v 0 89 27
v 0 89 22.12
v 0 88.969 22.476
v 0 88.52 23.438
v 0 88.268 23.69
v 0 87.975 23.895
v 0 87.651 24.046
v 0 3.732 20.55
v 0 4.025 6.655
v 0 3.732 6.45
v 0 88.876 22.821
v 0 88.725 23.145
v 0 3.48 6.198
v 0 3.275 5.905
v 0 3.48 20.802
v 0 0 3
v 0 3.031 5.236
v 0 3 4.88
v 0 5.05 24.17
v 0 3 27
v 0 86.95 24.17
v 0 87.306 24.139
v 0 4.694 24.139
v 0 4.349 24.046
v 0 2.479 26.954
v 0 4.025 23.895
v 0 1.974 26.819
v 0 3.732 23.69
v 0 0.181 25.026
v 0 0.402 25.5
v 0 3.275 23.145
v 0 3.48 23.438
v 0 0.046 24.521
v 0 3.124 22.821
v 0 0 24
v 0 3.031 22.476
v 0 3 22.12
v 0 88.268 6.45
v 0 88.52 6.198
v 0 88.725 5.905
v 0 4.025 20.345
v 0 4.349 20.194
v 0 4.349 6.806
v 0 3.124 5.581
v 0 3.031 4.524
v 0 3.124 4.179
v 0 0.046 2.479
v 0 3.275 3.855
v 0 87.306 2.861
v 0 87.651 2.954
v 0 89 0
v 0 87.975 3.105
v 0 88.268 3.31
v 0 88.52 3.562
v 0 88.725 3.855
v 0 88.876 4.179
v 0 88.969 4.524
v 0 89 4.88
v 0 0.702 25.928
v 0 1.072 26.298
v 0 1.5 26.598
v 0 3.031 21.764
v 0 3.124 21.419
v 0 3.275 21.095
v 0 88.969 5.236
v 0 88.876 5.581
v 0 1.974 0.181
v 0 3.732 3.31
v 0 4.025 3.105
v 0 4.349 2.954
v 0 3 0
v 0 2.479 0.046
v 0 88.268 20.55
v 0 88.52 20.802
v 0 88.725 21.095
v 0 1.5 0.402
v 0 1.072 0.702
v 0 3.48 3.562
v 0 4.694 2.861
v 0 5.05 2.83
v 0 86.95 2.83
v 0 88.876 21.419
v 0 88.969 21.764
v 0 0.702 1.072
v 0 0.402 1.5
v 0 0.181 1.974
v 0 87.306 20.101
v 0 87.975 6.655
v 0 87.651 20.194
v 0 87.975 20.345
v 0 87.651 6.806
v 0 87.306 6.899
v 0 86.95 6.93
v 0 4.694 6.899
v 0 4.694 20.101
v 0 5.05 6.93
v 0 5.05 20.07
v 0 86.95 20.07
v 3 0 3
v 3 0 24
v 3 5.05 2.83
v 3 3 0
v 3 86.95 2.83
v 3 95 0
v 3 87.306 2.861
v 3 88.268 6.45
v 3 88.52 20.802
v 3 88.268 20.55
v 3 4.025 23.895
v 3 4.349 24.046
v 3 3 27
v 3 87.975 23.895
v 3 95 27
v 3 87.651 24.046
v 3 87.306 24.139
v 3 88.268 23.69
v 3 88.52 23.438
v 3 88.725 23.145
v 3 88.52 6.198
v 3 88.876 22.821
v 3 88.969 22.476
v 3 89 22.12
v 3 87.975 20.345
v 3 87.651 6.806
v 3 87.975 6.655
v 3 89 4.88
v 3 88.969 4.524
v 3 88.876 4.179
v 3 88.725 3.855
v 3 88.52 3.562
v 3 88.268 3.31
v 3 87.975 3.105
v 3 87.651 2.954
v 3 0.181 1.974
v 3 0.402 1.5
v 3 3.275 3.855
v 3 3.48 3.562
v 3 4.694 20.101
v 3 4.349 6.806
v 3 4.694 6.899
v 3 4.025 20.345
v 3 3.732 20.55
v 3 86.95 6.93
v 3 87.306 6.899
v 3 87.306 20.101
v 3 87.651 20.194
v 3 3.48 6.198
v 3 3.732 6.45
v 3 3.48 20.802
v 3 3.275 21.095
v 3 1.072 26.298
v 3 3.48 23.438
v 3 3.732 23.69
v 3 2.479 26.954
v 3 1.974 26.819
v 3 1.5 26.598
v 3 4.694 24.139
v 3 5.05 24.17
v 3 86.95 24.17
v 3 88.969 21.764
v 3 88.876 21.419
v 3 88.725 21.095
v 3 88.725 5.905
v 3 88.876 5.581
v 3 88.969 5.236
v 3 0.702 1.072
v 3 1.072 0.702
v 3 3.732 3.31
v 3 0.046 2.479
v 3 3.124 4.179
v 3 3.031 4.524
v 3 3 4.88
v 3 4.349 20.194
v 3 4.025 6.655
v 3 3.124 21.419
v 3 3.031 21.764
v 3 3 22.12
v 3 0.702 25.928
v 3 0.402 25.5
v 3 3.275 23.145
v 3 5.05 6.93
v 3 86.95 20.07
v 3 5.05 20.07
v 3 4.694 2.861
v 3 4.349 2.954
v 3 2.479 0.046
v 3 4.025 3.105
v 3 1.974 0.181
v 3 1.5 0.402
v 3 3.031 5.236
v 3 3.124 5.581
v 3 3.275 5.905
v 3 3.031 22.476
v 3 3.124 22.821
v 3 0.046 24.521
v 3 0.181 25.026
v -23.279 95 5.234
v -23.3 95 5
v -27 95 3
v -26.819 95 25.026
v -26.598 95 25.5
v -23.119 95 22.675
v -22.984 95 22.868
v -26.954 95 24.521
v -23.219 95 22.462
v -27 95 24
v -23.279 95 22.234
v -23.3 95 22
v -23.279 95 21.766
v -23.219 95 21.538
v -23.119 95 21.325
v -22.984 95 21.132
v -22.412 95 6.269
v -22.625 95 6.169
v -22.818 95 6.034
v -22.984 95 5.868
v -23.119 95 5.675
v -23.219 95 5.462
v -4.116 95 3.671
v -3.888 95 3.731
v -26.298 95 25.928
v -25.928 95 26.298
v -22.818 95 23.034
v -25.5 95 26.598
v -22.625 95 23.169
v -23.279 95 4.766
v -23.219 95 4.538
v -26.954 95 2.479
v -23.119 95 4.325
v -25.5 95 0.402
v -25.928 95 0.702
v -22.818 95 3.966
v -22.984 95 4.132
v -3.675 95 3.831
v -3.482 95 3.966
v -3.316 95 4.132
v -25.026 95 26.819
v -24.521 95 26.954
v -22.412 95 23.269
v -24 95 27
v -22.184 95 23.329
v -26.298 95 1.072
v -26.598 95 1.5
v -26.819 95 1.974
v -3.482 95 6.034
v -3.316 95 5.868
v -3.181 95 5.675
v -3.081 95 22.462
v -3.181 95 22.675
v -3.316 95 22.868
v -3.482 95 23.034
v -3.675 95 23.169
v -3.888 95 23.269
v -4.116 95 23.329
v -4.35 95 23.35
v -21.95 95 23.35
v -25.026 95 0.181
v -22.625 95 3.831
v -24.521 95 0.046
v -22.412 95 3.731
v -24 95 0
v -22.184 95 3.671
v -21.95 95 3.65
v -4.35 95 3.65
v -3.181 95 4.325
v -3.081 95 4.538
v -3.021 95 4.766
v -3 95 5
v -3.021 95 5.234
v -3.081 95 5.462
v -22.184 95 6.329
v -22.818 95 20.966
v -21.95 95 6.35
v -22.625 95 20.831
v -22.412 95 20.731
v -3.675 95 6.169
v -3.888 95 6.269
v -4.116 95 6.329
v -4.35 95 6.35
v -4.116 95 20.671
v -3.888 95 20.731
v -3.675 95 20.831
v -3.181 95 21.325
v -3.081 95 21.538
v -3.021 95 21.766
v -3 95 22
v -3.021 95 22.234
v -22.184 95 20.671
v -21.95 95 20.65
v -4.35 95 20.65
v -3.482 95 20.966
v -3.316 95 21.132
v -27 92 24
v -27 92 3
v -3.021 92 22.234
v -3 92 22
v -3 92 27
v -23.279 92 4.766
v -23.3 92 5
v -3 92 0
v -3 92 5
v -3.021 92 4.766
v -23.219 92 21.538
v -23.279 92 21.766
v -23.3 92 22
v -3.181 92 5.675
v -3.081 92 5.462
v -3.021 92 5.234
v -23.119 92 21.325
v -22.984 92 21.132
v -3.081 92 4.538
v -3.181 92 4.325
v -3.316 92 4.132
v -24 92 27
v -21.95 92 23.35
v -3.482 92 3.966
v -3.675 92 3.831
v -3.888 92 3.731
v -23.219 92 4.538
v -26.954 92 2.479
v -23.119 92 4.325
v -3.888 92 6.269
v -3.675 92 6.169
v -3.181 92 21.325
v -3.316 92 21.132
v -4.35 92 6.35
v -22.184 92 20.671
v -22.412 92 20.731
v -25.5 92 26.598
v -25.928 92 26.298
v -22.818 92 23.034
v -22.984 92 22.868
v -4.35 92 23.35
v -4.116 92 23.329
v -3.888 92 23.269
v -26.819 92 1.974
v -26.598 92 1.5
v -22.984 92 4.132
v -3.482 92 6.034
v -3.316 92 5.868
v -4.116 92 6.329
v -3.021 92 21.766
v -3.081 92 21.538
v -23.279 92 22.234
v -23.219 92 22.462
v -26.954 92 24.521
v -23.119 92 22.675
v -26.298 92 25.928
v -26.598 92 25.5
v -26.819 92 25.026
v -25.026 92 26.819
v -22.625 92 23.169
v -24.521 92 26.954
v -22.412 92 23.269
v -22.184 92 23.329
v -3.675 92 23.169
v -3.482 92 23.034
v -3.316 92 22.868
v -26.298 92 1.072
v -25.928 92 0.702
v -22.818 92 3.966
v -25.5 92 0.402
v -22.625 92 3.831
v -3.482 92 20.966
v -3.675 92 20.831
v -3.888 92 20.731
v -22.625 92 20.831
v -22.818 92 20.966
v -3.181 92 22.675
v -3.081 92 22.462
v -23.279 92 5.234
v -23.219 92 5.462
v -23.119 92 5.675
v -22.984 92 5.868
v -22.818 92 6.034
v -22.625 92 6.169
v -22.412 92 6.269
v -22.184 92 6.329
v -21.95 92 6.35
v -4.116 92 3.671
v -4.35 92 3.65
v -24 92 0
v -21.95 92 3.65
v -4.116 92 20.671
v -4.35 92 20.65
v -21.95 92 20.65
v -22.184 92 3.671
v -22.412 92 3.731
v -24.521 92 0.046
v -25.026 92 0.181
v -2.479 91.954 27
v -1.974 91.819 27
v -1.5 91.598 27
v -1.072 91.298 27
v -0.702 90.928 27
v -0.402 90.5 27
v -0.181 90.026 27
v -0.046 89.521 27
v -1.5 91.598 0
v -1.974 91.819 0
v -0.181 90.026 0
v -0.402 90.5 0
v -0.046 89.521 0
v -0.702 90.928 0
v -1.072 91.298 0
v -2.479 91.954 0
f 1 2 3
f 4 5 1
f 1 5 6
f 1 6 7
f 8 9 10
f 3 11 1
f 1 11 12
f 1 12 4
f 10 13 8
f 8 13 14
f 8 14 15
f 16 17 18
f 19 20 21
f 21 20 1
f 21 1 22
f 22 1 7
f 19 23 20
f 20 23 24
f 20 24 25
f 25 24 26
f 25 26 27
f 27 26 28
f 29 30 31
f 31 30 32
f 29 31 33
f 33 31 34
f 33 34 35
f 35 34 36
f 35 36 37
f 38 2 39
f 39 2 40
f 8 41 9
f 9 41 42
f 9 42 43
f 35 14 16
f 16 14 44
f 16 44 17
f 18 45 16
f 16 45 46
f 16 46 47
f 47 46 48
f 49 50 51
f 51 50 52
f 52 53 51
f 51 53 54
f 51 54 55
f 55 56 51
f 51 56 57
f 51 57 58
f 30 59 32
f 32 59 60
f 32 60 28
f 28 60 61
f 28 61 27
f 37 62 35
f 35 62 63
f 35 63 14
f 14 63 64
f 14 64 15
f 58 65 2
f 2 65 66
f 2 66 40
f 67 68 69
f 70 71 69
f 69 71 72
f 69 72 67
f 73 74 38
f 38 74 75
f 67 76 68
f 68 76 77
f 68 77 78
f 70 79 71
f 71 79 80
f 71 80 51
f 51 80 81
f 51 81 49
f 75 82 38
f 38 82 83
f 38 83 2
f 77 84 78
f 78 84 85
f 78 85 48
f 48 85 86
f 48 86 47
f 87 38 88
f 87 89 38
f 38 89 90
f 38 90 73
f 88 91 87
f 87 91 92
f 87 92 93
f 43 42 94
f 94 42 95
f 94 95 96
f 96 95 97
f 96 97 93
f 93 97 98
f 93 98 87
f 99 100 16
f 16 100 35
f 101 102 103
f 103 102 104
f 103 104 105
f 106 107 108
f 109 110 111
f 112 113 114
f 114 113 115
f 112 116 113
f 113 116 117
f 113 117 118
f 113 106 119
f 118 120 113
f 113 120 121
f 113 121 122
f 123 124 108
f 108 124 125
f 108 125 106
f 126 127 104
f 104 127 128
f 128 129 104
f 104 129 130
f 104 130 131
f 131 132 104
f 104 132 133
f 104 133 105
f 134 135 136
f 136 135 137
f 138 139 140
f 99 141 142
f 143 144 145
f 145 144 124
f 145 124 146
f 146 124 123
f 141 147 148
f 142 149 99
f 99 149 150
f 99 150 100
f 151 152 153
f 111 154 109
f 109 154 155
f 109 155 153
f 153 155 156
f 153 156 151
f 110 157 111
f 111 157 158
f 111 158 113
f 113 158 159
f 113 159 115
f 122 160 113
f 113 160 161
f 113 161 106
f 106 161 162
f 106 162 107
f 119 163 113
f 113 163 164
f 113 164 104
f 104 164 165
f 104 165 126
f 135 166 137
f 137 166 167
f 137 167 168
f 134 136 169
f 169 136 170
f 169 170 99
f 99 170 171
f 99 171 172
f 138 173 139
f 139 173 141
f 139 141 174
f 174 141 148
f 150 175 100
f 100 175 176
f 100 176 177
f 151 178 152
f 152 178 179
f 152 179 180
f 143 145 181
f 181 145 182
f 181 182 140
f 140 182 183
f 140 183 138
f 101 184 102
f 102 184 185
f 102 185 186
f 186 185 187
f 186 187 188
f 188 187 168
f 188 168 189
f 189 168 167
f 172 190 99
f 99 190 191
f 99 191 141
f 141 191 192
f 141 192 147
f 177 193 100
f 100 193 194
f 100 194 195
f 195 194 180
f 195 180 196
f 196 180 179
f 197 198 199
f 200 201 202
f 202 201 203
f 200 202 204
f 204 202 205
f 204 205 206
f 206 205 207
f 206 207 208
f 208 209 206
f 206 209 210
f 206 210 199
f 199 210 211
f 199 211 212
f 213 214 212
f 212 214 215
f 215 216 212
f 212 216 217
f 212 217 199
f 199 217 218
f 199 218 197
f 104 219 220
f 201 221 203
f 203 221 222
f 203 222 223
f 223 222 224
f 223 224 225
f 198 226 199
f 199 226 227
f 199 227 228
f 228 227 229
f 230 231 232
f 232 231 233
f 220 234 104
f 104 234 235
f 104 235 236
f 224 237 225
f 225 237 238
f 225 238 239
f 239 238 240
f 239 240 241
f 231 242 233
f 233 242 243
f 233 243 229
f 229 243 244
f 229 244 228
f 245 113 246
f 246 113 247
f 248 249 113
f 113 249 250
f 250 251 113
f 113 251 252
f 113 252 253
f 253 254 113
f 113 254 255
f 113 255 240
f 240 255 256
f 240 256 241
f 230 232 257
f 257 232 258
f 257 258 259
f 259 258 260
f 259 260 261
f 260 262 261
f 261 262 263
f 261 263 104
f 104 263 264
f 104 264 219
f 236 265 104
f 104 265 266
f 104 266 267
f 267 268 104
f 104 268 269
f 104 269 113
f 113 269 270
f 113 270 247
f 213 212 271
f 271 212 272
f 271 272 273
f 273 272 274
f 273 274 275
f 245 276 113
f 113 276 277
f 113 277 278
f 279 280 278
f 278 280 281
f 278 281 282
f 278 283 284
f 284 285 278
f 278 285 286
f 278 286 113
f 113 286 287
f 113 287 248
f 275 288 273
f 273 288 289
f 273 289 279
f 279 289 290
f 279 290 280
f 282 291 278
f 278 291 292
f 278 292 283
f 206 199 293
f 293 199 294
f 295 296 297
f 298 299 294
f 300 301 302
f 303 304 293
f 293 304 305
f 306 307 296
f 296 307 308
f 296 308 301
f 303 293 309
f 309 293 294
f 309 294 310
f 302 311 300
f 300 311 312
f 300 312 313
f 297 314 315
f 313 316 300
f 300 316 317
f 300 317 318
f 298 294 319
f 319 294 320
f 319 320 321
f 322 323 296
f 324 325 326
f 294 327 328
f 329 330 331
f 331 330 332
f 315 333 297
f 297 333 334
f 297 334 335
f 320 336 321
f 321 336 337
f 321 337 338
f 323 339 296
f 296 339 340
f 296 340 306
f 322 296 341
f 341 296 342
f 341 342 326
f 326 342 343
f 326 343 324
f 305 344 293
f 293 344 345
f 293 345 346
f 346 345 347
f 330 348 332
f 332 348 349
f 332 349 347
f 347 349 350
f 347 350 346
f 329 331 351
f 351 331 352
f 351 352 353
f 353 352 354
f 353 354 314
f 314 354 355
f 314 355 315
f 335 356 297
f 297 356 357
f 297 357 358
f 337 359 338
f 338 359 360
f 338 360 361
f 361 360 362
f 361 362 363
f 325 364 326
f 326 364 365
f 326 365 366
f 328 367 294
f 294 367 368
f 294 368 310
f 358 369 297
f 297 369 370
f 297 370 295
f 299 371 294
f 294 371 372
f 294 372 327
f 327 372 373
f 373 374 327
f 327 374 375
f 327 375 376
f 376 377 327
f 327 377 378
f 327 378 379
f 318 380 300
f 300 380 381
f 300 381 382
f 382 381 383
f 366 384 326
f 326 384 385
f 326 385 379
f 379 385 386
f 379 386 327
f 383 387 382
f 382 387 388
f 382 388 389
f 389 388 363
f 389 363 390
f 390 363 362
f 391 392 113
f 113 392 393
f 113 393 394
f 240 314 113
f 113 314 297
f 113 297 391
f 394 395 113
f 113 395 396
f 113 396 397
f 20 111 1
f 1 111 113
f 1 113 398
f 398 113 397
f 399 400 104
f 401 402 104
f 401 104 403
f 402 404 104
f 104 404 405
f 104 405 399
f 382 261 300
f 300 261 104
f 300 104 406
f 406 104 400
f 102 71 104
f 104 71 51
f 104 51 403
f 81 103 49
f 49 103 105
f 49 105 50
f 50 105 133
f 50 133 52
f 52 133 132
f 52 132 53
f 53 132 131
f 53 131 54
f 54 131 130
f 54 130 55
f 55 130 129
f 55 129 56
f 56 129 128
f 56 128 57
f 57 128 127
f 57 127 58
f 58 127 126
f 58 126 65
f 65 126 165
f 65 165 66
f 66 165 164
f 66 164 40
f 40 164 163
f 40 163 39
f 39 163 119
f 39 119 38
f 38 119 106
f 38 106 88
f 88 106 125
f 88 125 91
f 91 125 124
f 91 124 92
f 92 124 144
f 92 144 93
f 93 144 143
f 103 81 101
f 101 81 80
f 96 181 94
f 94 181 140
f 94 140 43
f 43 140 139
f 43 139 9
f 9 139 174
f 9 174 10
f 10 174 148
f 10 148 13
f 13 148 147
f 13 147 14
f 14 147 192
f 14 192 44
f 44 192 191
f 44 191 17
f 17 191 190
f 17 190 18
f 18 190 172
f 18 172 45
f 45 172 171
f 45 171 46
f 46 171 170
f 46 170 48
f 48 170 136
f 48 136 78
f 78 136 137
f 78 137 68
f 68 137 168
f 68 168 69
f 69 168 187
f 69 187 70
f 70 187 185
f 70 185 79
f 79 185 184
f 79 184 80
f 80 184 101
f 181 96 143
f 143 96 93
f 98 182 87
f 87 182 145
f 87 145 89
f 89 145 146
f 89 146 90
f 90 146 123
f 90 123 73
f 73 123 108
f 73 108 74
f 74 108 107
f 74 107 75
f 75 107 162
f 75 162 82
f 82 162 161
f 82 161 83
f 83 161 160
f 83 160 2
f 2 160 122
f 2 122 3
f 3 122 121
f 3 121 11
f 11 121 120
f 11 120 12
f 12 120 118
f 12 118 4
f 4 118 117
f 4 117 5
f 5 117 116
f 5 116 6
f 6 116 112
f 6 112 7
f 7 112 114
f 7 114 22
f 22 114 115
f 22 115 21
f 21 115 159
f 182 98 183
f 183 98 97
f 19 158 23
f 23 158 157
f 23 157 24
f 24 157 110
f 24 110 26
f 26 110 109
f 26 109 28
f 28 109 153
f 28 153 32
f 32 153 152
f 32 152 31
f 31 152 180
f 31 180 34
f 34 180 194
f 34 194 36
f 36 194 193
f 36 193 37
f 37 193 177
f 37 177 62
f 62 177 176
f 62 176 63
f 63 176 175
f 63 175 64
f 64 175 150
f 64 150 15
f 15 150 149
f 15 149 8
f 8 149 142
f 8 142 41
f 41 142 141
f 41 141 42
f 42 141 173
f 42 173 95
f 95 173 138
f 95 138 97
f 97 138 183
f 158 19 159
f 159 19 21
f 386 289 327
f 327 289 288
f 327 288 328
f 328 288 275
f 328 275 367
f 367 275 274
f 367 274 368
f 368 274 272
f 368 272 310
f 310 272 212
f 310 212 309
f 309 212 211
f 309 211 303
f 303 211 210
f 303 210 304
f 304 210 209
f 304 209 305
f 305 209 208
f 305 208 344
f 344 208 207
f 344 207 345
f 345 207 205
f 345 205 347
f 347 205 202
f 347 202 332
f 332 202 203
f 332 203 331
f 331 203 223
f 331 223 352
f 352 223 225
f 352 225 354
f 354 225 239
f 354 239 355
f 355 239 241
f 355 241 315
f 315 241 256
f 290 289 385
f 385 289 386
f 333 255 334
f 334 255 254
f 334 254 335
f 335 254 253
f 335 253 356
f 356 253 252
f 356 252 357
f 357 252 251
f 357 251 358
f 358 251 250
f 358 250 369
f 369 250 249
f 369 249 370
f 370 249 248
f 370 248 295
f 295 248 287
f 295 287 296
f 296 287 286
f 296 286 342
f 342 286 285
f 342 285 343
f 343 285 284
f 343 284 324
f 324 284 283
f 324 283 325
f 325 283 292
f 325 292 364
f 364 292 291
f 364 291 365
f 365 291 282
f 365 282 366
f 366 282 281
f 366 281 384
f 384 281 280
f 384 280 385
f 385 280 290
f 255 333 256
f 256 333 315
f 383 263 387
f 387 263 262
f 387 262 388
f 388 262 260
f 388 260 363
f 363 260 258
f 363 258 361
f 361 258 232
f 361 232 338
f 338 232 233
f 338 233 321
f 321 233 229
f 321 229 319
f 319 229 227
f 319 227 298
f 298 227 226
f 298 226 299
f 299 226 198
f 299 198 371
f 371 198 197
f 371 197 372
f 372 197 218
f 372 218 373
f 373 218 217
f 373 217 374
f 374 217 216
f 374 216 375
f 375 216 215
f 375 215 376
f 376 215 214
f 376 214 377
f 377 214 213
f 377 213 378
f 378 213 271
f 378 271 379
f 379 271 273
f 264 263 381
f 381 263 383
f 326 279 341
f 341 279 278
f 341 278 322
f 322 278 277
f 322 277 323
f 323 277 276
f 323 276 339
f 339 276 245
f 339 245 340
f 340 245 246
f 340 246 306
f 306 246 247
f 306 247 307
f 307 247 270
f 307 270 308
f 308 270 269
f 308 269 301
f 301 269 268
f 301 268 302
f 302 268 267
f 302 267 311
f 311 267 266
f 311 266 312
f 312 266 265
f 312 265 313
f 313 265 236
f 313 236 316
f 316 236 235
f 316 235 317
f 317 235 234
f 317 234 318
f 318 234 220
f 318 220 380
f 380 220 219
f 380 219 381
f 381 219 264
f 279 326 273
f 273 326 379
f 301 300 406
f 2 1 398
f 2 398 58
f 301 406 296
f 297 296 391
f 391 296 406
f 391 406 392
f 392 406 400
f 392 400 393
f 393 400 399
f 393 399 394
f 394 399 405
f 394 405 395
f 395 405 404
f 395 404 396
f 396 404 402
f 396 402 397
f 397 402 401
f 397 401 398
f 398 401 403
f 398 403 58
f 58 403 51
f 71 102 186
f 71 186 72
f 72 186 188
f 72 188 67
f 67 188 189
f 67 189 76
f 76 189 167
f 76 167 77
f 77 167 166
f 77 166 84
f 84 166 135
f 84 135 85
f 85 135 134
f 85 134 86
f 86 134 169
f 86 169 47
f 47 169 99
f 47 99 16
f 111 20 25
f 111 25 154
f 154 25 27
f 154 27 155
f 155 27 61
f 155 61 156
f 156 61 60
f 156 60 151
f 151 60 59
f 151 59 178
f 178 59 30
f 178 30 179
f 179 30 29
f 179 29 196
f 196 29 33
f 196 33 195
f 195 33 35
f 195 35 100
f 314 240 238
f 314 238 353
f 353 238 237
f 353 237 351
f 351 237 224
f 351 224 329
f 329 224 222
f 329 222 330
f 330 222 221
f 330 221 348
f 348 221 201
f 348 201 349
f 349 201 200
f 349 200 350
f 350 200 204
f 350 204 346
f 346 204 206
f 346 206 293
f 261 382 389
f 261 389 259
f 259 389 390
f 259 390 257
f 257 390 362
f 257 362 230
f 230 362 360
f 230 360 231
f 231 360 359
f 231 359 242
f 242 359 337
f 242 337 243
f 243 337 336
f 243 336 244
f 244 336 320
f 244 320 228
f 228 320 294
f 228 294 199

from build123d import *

# Parameters (mm, degrees)
BOSS_EXTRUDE1_DEPTH = 27
CUT_EXTRUDE1_DEPTH  = 104.218215447
CUT_EXTRUDE2_DEPTH  = 103.386522551
FILLET1_R           = 3
FILLET2_R           = 3


with BuildPart() as part:
    # Sketch1 → Boss-Extrude1 (new body)
    with BuildSketch(Plane.XY):
        Polygon((0, 0), (3, 0), (3, 95), (-27, 95), (-27, 92), (0, 92), align=None)
    extrude(amount=BOSS_EXTRUDE1_DEPTH)

    # Sketch6 → Cut-Extrude1 (cut, through all)
    with BuildSketch(Plane(origin=(3, 0, 0), x_dir=(0, 0, -1), z_dir=(1, 0, 0))):
        with BuildLine():
            Line((-20.07, 86.95), (-20.07, 5.05))
            ThreePointArc((-20.07, 5.05), (-22.12, 3), (-24.17, 5.05))
            Line((-24.17, 5.05), (-24.17, 86.95))
            ThreePointArc((-24.17, 86.95), (-22.12, 89), (-20.07, 86.95))
        make_face()
        with BuildLine():
            Line((-2.83, 86.95), (-2.83, 5.05))
            ThreePointArc((-2.83, 5.05), (-4.88, 3), (-6.93, 5.05))
            Line((-6.93, 5.05), (-6.93, 86.95))
            ThreePointArc((-6.93, 86.95), (-4.88, 89), (-2.83, 86.95))
        make_face()
    extrude(amount=-CUT_EXTRUDE1_DEPTH, mode=Mode.SUBTRACT)

    # Sketch7 → Cut-Extrude2 (cut, through all)
    with BuildSketch(Plane(origin=(0, 95, 0), x_dir=(1, 0, 0), z_dir=(0, 1, 0))):
        with BuildLine():
            Line((-21.95, -3.65), (-4.35, -3.65))
            ThreePointArc((-4.35, -3.65), (-3, -5), (-4.35, -6.35))
            Line((-4.35, -6.35), (-21.95, -6.35))
            ThreePointArc((-21.95, -6.35), (-23.3, -5), (-21.95, -3.65))
        make_face()
        with BuildLine():
            Line((-21.95, -20.65), (-4.35, -20.65))
            ThreePointArc((-4.35, -20.65), (-3, -22), (-4.35, -23.35))
            Line((-4.35, -23.35), (-21.95, -23.35))
            ThreePointArc((-21.95, -23.35), (-23.3, -22), (-21.95, -20.65))
        make_face()
    extrude(amount=-CUT_EXTRUDE2_DEPTH, mode=Mode.SUBTRACT)

    # Fillet1
    fillet1_edges = [part.edges().sort_by_distance(p)[0] for p in [
        (0, 92, 13.5),
    ]]
    fillet(fillet1_edges, radius=FILLET1_R - 0.0001)  # a hair under: the kernel refuses the full size

    # Fillet2
    fillet2_edges = [part.edges().sort_by_distance(p)[0] for p in [
        (-27, 93.5, 27),
        (-27, 93.5, 0),
        (1.5, 0, 0),
        (1.5, 0, 27),
    ]]
    fillet(fillet2_edges, radius=FILLET2_R)


solid = part.part
